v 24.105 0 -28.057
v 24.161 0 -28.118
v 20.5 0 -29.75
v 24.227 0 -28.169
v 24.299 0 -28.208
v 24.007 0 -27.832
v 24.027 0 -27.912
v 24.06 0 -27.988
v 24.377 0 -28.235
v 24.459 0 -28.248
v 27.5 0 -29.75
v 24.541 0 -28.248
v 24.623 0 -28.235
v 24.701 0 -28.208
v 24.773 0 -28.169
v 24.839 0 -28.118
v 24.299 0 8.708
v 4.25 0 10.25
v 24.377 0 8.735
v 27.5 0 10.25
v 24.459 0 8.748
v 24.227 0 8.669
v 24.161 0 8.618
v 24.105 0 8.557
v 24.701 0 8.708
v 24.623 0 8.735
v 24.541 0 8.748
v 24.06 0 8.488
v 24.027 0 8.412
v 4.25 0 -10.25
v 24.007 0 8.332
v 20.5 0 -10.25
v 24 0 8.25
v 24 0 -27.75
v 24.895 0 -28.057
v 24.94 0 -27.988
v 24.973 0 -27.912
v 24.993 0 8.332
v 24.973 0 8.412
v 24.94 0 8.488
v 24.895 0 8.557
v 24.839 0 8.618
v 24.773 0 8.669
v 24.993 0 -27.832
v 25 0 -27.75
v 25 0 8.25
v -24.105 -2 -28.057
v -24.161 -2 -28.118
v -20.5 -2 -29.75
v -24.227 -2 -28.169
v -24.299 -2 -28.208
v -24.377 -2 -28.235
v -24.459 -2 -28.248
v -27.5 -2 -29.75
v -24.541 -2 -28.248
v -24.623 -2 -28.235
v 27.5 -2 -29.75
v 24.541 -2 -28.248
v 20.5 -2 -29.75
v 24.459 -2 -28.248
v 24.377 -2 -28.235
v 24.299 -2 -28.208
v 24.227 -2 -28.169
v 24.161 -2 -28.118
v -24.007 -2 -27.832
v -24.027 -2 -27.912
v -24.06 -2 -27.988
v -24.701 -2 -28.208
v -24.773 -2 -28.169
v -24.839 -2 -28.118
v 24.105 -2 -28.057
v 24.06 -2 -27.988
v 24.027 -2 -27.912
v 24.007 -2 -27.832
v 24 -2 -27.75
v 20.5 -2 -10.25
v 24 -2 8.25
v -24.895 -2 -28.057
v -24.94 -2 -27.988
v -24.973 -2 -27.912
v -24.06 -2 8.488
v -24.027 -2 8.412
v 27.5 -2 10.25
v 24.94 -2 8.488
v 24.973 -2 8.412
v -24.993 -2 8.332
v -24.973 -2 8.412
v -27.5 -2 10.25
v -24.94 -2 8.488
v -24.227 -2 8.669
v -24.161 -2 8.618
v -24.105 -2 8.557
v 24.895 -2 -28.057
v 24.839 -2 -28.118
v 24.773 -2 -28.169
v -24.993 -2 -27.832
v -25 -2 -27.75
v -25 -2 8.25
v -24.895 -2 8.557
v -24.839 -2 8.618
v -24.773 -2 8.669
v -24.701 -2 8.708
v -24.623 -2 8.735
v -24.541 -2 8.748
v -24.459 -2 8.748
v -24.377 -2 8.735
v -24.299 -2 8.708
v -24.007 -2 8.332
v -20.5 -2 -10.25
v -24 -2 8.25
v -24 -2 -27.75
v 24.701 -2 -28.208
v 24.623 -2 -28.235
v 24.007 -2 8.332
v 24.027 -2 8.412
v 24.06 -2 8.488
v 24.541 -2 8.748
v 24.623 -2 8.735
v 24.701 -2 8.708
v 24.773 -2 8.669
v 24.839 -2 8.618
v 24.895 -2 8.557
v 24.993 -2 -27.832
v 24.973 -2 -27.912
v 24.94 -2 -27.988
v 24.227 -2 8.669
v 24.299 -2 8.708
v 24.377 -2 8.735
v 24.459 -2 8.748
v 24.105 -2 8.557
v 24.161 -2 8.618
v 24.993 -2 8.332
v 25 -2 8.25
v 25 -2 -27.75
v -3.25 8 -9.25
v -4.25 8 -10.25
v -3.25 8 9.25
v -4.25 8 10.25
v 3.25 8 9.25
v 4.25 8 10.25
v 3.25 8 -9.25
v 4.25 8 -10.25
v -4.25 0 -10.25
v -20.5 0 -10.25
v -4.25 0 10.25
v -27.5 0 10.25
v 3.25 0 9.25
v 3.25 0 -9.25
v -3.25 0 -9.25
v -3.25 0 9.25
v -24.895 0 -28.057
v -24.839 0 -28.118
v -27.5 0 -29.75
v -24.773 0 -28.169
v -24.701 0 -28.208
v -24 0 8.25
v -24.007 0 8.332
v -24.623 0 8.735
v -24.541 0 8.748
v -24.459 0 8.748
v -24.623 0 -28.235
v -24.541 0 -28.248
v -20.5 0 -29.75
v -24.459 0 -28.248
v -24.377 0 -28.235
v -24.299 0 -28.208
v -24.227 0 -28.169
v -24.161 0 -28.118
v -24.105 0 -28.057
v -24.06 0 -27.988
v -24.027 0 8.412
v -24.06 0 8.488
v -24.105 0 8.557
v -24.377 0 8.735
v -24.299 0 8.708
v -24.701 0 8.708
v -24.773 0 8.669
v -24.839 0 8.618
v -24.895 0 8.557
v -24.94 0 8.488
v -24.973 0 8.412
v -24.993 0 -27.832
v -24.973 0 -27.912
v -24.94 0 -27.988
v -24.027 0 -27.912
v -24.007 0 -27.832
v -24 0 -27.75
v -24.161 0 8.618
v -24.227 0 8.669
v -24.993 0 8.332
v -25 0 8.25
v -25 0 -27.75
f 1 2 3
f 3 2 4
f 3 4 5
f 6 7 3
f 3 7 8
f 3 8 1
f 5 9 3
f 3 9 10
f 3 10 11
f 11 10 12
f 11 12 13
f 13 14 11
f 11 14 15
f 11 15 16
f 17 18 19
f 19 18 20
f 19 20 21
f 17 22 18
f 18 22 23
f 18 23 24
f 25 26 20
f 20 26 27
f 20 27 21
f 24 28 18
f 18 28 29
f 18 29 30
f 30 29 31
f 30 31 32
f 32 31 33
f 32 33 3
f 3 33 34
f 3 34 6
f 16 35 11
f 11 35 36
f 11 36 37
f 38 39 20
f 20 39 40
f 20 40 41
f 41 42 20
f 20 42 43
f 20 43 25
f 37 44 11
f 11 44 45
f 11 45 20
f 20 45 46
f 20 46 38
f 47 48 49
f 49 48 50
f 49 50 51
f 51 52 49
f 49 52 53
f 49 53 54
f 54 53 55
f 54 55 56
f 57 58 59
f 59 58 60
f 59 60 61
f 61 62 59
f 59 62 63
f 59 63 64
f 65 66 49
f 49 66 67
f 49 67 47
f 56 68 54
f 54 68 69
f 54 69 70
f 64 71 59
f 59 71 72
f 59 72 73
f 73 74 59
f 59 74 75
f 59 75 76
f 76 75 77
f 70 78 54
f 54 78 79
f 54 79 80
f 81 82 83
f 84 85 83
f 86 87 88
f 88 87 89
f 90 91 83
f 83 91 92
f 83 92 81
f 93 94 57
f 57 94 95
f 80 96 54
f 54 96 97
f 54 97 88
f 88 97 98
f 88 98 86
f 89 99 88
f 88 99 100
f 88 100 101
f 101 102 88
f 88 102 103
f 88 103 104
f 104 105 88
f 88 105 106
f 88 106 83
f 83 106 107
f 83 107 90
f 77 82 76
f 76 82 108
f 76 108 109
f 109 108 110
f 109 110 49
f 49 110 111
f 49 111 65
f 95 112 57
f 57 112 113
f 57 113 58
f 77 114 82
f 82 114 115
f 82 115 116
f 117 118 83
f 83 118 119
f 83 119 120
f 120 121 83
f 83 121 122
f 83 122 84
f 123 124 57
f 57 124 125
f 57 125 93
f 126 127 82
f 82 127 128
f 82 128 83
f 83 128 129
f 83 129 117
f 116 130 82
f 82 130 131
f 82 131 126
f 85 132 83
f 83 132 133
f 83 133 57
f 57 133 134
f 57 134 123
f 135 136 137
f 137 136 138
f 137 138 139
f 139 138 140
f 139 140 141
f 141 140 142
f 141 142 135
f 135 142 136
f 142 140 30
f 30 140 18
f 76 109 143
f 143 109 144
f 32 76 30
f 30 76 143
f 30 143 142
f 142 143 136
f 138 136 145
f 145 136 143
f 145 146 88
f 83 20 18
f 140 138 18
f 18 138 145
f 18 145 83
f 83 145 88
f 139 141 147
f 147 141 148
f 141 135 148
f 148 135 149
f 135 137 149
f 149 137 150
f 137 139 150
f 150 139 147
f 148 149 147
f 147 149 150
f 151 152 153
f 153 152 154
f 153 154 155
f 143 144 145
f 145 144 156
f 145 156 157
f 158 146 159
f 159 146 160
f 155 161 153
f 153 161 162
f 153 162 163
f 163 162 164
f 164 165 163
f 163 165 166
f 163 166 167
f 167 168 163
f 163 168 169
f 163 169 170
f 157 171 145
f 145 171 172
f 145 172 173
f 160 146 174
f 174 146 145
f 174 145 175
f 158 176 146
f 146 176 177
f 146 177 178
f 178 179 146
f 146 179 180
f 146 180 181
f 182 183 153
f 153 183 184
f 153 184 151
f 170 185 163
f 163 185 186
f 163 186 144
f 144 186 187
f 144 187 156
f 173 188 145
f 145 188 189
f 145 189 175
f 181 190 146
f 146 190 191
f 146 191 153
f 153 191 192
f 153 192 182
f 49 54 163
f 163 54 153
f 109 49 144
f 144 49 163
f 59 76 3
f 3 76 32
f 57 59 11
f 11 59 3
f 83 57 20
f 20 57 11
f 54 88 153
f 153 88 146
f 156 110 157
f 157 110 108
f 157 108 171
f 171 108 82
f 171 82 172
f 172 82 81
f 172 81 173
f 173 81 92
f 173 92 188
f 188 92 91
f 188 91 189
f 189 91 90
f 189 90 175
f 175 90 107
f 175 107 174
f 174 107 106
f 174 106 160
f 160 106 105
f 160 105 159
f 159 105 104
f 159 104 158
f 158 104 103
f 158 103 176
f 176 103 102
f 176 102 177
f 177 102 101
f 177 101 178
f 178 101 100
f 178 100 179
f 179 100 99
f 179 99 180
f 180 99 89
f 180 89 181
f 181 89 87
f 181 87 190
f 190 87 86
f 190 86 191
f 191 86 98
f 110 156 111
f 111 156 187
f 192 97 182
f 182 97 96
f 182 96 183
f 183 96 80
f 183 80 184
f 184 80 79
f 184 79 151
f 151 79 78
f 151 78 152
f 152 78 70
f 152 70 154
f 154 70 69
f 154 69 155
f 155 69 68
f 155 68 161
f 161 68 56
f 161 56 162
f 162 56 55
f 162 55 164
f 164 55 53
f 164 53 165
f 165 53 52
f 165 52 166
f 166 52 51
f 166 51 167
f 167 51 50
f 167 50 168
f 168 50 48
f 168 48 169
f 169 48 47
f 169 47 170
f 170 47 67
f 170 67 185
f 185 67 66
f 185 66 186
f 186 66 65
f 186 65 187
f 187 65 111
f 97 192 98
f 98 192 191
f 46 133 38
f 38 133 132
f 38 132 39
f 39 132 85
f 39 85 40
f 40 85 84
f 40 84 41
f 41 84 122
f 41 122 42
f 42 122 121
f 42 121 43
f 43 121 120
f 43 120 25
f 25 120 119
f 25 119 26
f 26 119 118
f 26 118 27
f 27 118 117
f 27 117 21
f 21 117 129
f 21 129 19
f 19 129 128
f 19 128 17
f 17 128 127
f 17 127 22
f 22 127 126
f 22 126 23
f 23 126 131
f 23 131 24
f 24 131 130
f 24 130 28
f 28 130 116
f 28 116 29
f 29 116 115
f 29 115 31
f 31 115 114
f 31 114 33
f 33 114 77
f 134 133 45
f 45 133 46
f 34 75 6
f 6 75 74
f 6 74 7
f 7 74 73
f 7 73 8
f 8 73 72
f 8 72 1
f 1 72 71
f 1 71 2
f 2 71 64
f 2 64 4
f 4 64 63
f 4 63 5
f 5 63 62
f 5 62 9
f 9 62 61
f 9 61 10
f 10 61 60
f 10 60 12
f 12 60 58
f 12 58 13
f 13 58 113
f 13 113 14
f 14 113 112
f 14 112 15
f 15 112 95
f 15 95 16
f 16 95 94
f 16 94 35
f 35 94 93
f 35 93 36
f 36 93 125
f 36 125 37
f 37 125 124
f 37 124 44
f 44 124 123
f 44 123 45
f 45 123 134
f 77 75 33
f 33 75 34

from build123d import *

# Parameters (mm, degrees)
SKETCH1_W           = 8.5
SKETCH1_H           = 20.5
SKETCH1_W_2         = 6.5
SKETCH1_H_2         = 18.5
EXTRUDE_THIN1_DEPTH = 8
BOSS_EXTRUDE1_DEPTH = 2
CUT_EXTRUDE1_REACH  = 43.729


with BuildPart() as part:
    # Sketch1 → Extrude-Thin1 (new body)
    with BuildSketch(Plane(origin=(0, 0, 0), x_dir=(1, 0, 0), z_dir=(0, 1, 0))):
        Rectangle(SKETCH1_W, SKETCH1_H)
        Rectangle(SKETCH1_W_2, SKETCH1_H_2, mode=Mode.SUBTRACT)
    extrude(amount=EXTRUDE_THIN1_DEPTH)

    # Sketch2 → Boss-Extrude1 (add)
    with BuildSketch(Plane.XZ):
        Polygon((20.5, -29.75), (20.5, -10.25), (-20.5, -10.25), (-20.5, -29.75), (-27.5, -29.75), (-27.5, 10.25), (27.5, 10.25), (27.5, -29.75), align=None)
    extrude(amount=BOSS_EXTRUDE1_DEPTH)

    # Sketch3 → Cut-Extrude1 (cut, up to next)
    with BuildSketch(Plane.XZ.offset(2), mode=Mode.PRIVATE) as cut_extrude1_sk1:
        with BuildLine():
            Line((-24, 8.25), (-24, -27.75))
            ThreePointArc((-24, -27.75), (-24.5, -28.25), (-25, -27.75))
            Line((-25, -27.75), (-25, 8.25))
            ThreePointArc((-25, 8.25), (-24.5, 8.75), (-24, 8.25))
        make_face()
    cut_extrude1_tool1 = extrude(cut_extrude1_sk1.sketch, amount=-CUT_EXTRUDE1_REACH, mode=Mode.PRIVATE) & part.part
    cut_extrude1 = cut_extrude1_tool1.solids().sort_by_distance((-24.5, -2, -9.75))[0]
    add(cut_extrude1, mode=Mode.SUBTRACT)

    # Mirror1: Cut-Extrude1 across plane
    add(cut_extrude1.mirror(Plane(origin=(0, 0, 0), x_dir=(0, 0, 1), z_dir=(1, 0, 0))), mode=Mode.SUBTRACT)


solid = part.part
